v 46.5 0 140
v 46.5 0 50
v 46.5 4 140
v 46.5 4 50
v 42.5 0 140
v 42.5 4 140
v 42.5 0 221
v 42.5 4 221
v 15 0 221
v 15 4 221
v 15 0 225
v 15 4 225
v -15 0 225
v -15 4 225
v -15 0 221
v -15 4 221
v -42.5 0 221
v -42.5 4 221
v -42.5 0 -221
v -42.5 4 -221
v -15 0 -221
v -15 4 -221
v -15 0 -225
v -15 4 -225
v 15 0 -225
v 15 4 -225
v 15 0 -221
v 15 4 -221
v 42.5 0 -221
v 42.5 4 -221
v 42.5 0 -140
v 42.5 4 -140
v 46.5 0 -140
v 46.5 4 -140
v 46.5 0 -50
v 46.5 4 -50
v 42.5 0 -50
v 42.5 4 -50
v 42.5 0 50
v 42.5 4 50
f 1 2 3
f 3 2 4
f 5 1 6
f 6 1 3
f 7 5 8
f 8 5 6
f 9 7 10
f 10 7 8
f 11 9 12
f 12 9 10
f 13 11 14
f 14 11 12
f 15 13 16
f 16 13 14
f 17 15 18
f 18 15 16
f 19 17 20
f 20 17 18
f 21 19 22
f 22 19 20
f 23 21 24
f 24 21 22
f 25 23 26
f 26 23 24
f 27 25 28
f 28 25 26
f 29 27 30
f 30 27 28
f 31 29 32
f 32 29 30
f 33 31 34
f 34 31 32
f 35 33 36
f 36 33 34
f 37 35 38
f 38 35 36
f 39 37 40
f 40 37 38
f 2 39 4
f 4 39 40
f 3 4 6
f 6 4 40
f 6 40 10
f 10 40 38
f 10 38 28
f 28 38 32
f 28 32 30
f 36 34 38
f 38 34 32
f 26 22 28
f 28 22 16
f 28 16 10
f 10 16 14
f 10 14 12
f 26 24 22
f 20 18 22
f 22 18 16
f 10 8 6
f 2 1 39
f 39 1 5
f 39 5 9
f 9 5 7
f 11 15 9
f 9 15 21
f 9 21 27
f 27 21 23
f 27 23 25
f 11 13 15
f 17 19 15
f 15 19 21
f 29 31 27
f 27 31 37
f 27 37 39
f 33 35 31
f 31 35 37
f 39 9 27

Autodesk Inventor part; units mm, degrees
ref_plane "YZ Plane" through (0, 0, 0) normal (1, 0, 0) x (0, 1, 0)
ref_plane "XZ Plane" through (0, 0, 0) normal (0, 1, 0) x (-1, 0, 0)
ref_plane "XY Plane" through (0, 0, 0) normal (0, 0, 1) x (1, 0, 0)
sketch "Эскиз1" plane through (0, 0, 0) normal (0, 1, 0) x (-1, 0, 0)
  line L0 (-42.5, 221) -> (42.5, 221)
  line L1 (42.5, 221) -> (42.5, -221)
  line L2 (42.5, -221) -> (-42.5, -221)
  line L3 (-42.5, -221) -> (-42.5, 221)
  line L4 (-42.5, 221) -> (42.5, -221) construction
  line L5 (42.5, 221) -> (-42.5, -221) construction
  line L6 (-42.5, 140) -> (-42.5, 50)
  line L7 (-42.5, 50) -> (-46.5, 50)
  line L8 (-46.5, 50) -> (-46.5, 140)
  line L9 (-46.5, 140) -> (-42.5, 140)
  line L10 (0, 0) -> (-15, 0) construction
  line L11 (-46.5, -50) -> (-46.5, -140)
  line L12 (-46.5, -140) -> (-42.5, -140)
  line L13 (-42.5, -50) -> (-46.5, -50)
  line L14 (-42.5, -140) -> (-42.5, -50)
  line L15 (-42.5, -24) -> (-42.5, 66)
  line L16 (15, 225) -> (15, 221)
  line L17 (15, 221) -> (-15, 221)
  line L18 (-15, 221) -> (-15, 225)
  line L19 (-15, 225) -> (15, 225)
  line L20 (15, 225) -> (-15, 221) construction
  line L21 (15, 221) -> (-15, 225) construction
  line L22 (0, 0) -> (0, 26.5579) construction
  line L23 (15, -225) -> (15, -221)
  line L24 (15, -221) -> (-15, -221)
  line L25 (-15, -221) -> (-15, -225)
  line L26 (-15, -225) -> (15, -225)
  point P0 (-10, -165.5)
  point P1 (-10, -255.5)
  point P2 (-10, -45)
  point P3 (-10, 45)
  point P4 (-42.5, -50)
  point P5 (-42.5, -140)
  point P6 (0, 223)
  point P7 (0, 223)
  point P8 (-15, -221)
  point P9 (15, -221)
  dimension "d0" = 442
  dimension "d1" = 85
  dimension "d2" = 4
  dimension "d3" = 90
  dimension "d4" = 50
  dimension "d9" = 30
  dimension "d11" = 4
extrude "Выдавливание1" add sketch "Эскиз1" along normal blind 4
properties part number "стенка боковая"
